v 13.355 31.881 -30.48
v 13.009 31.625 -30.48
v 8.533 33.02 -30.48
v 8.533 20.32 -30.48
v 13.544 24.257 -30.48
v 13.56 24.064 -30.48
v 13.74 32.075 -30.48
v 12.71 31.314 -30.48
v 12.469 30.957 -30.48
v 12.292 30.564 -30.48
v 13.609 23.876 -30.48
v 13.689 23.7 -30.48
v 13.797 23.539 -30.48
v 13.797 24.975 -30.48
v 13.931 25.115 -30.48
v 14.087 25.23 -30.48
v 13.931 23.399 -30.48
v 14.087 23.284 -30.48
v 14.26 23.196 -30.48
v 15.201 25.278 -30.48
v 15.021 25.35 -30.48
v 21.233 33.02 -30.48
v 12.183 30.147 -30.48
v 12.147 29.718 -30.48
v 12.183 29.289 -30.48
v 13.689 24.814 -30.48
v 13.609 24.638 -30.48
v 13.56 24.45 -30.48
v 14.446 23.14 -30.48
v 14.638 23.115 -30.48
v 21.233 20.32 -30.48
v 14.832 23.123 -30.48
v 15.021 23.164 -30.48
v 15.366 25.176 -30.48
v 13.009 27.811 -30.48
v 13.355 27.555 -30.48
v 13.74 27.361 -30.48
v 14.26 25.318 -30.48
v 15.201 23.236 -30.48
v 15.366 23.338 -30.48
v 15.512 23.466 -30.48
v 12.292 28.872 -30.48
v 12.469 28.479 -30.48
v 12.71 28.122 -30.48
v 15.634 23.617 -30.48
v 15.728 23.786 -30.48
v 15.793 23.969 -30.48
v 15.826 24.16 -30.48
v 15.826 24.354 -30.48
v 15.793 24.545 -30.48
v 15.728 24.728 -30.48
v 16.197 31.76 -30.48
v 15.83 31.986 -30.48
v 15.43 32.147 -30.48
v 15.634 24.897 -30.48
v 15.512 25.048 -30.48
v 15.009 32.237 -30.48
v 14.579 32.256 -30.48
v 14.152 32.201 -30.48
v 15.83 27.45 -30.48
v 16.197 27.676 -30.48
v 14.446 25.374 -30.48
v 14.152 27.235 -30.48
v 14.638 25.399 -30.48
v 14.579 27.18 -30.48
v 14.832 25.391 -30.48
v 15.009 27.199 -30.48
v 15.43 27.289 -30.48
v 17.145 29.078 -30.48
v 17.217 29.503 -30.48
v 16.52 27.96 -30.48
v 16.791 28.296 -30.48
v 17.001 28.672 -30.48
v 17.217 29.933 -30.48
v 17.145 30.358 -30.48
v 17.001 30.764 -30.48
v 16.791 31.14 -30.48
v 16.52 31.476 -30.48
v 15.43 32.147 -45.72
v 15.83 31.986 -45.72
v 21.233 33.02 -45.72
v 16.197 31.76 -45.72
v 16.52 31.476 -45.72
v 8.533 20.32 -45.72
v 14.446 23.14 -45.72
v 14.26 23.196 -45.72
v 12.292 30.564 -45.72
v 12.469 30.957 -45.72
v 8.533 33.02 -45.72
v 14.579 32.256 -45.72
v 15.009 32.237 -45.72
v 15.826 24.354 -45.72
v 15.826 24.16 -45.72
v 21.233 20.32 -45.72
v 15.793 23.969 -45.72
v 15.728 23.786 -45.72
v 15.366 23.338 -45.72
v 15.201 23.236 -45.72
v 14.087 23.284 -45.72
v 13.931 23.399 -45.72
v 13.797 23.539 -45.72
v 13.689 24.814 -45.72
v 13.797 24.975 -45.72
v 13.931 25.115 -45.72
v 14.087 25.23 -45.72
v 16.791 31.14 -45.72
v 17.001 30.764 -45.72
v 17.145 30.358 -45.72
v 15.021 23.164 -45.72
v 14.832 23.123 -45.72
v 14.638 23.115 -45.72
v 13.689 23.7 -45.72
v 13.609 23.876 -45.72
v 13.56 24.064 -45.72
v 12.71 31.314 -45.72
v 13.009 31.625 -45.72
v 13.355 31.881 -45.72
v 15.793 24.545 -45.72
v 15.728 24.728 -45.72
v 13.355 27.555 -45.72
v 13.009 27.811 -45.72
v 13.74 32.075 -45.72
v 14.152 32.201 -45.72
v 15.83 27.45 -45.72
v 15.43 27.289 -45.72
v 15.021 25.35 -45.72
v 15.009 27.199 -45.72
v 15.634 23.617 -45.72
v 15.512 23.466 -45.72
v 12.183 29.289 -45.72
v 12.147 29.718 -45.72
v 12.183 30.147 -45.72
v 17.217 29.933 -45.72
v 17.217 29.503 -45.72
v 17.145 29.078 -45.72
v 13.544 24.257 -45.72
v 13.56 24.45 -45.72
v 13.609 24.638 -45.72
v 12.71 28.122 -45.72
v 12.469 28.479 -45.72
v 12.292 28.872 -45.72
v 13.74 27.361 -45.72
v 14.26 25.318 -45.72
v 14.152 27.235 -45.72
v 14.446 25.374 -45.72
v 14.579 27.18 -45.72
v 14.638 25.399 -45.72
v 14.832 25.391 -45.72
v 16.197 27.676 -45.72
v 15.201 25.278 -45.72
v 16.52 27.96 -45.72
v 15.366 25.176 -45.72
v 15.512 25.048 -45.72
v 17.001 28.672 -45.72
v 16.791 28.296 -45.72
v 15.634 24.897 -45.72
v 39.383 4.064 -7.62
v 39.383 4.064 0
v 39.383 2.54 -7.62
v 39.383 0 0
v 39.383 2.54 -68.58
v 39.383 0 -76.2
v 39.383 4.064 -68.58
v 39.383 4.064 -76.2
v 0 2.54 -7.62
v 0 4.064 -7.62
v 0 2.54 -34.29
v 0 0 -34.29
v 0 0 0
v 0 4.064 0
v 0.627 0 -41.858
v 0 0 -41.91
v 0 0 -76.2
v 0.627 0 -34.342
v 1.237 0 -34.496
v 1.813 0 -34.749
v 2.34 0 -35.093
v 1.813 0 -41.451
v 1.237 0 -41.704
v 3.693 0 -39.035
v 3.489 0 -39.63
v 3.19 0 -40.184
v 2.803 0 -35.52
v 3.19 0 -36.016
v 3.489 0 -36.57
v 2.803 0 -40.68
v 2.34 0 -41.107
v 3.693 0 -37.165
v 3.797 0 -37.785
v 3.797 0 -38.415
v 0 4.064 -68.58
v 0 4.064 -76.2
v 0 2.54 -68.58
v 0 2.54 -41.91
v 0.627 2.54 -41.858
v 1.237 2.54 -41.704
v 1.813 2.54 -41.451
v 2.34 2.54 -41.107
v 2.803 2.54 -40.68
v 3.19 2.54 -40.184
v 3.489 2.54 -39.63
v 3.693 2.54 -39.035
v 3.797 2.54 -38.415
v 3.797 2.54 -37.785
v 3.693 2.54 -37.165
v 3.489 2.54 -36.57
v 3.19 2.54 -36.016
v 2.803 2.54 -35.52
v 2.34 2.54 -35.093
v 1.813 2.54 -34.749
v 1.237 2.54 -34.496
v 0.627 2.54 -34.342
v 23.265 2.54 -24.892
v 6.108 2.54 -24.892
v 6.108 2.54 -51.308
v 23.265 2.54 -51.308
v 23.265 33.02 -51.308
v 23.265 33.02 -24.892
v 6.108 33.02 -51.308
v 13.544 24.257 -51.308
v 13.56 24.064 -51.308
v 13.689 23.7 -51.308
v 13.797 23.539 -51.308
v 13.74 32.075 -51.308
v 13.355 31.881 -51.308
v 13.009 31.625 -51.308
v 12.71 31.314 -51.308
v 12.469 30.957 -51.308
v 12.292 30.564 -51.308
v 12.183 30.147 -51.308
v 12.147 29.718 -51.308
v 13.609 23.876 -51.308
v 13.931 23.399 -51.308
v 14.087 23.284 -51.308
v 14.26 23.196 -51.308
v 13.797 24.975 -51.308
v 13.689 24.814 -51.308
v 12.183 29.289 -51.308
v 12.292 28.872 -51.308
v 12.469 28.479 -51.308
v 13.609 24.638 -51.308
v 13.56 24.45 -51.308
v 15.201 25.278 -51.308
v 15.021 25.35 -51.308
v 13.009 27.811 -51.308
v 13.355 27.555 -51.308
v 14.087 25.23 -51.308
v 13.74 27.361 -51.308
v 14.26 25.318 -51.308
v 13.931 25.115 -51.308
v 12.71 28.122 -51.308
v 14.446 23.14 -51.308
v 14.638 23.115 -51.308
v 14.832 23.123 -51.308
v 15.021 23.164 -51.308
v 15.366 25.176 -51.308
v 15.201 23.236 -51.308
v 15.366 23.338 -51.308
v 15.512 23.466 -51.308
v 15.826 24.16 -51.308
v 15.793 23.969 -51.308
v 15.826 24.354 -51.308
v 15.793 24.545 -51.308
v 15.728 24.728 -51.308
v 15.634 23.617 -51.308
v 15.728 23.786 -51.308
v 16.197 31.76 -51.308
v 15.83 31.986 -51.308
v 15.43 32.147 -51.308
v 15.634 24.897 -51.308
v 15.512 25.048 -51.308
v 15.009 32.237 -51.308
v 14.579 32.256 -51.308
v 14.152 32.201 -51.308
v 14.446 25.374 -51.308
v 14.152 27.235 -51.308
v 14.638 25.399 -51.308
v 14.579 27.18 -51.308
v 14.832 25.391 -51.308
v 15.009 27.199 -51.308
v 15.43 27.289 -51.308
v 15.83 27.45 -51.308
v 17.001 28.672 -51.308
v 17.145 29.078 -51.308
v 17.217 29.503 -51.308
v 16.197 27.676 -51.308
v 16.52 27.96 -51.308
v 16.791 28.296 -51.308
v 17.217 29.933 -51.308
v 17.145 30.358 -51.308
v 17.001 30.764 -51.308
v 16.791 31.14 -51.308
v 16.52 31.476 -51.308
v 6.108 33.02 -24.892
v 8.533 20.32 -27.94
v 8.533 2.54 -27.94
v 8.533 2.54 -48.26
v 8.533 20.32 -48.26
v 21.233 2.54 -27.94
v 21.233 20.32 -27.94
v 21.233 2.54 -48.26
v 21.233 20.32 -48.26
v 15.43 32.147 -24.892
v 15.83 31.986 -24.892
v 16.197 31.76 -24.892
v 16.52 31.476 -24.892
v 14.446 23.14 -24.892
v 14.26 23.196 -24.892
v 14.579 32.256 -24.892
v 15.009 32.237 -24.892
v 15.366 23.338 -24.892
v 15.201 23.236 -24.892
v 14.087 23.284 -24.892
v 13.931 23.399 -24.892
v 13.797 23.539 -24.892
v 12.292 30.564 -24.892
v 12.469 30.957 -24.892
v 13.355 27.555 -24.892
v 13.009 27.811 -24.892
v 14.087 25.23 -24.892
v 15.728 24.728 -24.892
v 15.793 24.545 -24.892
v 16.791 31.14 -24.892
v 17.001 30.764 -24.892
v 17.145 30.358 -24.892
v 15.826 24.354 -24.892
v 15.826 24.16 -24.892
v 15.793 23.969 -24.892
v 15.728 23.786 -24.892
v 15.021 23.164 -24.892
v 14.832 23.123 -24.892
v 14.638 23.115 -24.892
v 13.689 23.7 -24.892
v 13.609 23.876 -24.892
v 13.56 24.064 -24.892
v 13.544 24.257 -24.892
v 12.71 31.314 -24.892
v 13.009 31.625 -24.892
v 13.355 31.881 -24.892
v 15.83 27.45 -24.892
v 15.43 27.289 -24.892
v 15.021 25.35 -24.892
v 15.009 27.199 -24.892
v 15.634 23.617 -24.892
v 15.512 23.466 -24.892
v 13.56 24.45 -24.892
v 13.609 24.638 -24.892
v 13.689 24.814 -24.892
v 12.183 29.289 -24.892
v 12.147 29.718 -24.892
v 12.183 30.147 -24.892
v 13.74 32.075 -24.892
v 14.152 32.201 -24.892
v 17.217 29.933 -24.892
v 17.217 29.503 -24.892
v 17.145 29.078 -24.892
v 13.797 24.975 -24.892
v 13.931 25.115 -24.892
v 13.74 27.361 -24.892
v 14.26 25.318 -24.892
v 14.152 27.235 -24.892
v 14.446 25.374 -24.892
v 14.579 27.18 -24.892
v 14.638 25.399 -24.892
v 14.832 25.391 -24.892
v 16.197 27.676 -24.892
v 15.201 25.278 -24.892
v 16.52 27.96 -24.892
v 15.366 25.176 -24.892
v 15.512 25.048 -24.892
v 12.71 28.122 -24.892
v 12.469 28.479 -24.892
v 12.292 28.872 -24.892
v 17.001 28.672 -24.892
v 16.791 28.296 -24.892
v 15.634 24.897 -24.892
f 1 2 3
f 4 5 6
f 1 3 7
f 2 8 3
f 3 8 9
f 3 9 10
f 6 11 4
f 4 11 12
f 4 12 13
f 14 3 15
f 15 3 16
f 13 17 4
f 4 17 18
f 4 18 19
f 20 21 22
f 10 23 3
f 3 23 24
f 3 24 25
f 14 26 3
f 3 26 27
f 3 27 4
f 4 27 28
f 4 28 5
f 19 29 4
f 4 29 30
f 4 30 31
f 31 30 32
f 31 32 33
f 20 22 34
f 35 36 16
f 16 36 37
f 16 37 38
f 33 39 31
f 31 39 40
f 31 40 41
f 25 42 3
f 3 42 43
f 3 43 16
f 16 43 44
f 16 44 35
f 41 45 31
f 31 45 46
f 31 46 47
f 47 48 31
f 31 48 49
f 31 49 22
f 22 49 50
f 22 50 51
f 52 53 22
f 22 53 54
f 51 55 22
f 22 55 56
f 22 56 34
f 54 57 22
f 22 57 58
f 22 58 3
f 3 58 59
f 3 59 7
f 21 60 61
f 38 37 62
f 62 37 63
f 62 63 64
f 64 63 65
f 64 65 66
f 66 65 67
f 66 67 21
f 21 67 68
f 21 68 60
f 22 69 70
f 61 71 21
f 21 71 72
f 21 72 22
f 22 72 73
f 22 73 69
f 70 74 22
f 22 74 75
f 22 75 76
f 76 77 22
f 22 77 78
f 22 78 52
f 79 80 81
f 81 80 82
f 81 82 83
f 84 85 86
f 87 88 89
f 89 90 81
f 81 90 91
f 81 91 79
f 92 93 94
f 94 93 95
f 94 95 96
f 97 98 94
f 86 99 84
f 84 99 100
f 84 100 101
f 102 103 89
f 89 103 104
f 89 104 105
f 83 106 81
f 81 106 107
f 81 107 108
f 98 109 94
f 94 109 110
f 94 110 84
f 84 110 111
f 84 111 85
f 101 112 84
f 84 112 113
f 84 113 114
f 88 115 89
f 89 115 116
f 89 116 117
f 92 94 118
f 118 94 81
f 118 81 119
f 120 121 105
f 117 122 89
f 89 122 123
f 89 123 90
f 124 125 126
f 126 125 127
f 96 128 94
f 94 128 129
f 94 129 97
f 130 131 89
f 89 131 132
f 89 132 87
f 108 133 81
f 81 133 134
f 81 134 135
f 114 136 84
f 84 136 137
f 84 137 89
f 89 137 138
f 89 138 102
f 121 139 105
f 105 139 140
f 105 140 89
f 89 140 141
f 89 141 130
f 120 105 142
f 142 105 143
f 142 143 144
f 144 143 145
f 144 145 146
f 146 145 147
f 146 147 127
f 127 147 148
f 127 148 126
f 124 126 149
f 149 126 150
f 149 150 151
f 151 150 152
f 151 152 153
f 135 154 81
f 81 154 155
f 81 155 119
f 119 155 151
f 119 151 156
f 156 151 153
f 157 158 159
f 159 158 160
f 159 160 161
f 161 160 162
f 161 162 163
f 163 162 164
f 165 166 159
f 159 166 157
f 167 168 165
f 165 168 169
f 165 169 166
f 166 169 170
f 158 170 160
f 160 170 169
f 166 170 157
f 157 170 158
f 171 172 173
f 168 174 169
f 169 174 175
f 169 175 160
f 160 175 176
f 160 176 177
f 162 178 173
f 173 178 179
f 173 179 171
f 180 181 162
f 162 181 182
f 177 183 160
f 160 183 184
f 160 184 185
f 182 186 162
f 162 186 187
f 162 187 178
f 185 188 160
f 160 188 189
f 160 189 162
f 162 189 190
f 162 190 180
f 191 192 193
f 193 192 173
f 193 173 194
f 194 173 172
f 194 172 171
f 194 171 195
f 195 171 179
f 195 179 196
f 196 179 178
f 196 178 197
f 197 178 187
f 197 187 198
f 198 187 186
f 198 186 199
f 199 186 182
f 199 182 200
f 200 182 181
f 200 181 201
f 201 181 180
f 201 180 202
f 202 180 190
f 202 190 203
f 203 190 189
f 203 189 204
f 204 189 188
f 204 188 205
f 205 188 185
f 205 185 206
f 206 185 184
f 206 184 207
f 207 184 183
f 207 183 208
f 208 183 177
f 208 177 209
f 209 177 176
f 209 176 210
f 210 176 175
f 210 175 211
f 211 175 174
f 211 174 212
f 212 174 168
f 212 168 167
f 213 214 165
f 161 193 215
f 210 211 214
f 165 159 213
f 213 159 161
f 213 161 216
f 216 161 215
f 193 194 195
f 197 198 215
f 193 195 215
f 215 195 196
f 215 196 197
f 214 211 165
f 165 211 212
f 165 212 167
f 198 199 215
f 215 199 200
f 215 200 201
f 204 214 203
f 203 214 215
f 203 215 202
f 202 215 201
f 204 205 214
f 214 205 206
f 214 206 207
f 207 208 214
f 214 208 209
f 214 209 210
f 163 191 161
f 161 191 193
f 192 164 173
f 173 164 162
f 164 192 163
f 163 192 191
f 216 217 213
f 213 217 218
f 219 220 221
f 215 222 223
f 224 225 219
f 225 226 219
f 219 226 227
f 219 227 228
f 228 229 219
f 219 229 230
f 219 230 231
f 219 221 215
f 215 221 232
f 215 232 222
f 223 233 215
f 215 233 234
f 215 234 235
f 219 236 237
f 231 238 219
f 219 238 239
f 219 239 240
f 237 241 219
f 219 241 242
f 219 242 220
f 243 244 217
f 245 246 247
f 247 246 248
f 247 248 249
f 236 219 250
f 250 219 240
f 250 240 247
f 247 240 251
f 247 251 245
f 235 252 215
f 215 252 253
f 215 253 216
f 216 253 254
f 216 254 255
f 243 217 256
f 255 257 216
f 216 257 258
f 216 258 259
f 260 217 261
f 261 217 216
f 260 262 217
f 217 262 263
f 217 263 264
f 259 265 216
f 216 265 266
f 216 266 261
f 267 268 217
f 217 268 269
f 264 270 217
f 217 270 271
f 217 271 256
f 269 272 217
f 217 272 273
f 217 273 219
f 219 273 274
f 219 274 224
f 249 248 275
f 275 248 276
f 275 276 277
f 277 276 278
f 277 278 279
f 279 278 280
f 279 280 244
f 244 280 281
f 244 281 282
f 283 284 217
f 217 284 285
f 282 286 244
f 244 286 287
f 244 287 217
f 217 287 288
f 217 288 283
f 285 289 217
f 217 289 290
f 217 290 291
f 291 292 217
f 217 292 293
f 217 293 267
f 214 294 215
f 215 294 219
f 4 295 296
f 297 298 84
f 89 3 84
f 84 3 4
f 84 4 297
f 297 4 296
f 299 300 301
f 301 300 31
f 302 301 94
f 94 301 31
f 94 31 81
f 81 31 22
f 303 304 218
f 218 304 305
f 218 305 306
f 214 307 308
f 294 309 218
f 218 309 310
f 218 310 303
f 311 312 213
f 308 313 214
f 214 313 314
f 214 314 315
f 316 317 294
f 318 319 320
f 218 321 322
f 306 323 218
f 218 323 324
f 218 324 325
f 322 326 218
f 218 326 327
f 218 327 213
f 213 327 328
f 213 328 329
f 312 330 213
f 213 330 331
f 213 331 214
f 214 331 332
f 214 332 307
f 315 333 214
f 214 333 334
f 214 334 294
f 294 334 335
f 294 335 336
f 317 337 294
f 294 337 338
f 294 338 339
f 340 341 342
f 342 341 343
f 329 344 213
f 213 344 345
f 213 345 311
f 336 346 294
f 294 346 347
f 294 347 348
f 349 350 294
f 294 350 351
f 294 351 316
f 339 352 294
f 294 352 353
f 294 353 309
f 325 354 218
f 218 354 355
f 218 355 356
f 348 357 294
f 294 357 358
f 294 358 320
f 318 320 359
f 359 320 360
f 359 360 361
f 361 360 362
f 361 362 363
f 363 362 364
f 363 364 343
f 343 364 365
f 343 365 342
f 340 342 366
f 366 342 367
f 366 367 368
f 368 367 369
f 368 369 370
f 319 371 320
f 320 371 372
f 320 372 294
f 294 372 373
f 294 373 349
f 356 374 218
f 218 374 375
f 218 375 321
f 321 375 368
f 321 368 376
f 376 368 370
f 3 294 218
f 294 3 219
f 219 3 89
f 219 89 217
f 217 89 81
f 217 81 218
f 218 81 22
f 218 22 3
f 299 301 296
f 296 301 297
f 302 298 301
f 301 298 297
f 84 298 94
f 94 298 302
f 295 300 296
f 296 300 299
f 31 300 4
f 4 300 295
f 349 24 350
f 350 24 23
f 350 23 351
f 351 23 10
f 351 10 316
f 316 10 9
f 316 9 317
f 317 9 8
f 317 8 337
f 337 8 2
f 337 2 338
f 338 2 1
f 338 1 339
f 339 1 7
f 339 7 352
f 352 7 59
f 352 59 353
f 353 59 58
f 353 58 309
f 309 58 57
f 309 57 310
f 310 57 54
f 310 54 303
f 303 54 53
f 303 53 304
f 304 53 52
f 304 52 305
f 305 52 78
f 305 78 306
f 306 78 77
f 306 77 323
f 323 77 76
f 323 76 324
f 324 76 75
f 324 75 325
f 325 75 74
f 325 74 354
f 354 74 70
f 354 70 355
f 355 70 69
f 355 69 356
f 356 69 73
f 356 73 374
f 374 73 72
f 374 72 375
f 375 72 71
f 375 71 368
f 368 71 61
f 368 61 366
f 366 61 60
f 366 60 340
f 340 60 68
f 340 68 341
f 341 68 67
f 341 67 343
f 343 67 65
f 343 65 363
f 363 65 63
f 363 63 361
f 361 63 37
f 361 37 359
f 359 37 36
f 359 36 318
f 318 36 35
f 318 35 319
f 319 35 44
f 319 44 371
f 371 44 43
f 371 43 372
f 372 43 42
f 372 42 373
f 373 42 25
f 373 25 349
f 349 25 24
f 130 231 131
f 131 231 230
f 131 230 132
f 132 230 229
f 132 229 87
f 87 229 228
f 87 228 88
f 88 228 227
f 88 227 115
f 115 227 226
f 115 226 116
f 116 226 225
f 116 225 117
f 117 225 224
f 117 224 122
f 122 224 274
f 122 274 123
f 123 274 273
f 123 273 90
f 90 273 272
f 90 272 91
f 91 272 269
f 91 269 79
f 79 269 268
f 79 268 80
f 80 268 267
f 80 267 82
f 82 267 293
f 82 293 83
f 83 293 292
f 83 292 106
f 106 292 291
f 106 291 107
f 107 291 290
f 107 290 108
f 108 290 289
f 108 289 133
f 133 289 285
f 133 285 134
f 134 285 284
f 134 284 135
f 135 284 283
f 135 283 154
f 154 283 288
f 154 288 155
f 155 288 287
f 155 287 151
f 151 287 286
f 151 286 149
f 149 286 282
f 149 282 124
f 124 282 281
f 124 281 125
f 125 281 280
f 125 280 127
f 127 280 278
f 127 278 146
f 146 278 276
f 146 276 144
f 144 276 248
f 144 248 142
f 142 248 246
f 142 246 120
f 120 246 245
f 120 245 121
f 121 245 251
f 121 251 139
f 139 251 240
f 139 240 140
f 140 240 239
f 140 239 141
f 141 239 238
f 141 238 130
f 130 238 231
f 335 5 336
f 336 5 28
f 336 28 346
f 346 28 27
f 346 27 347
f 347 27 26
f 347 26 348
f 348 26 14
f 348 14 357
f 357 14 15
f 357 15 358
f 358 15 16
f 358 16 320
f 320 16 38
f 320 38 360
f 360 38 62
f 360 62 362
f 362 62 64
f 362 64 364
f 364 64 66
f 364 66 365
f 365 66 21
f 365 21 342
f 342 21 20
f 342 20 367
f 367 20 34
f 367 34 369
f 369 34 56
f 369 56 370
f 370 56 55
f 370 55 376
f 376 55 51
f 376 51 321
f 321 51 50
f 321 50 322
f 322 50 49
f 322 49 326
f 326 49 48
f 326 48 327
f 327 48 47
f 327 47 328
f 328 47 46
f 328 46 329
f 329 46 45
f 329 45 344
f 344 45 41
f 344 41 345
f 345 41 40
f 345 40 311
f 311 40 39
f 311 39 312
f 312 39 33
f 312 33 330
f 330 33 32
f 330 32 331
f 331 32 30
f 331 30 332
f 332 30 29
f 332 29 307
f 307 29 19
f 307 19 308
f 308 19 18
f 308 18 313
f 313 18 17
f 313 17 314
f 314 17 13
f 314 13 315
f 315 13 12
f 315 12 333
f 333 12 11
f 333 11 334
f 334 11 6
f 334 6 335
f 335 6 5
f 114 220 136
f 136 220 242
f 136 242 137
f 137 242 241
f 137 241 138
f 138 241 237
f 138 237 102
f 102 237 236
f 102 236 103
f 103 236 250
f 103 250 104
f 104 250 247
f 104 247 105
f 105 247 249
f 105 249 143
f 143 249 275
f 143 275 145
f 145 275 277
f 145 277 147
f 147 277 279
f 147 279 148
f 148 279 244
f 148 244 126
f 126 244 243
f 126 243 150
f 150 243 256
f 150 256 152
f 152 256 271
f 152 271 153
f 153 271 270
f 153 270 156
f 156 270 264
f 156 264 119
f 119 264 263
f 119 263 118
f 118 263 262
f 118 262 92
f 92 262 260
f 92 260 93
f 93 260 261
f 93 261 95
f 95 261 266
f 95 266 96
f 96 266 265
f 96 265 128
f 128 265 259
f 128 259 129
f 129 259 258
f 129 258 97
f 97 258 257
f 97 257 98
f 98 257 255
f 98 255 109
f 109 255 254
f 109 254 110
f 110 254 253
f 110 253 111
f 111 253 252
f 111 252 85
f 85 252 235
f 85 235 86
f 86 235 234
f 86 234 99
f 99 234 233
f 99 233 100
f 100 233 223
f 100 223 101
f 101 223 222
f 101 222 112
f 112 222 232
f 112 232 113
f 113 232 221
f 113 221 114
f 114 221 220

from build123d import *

# Parameters (mm, degrees)
SKETCH2_W             = 39.3827
SKETCH2_H             = 7.62
BOSS_EXTRUDE2_DEPTH   = 4.064
BOSS_EXTRUDE2_2_DEPTH = 4.064
BOSS_EXTRUDE3_DEPTH   = 2.54
BOSS_EXTRUDE4_DEPTH   = 33.02
SKETCH4_W             = 12.7
SKETCH4_H             = 2.54
CUT_EXTRUDE2_DEPTH    = 17.78
CUT_EXTRUDE3_REACH    = 74.621
SKETCH5_R             = 2.54
SKETCH5_R_2           = 1.143


with BuildPart() as part:
    # Sketch2 → Boss-Extrude2 (new body)
    with BuildSketch(Plane(origin=(0, 0, 0), x_dir=(1, 0, 0), z_dir=(0, 1, 0))):
        with Locations((19.69135, 3.81)):
            Rectangle(SKETCH2_W, SKETCH2_H)
    extrude(amount=BOSS_EXTRUDE2_DEPTH)



with BuildPart() as body_2:
    # Sketch2 → Boss-Extrude2 2 (new body)
    with BuildSketch(Plane(origin=(0, 0, 0), x_dir=(1, 0, 0), z_dir=(0, 1, 0))):
        with Locations((19.69135, 72.39)):
            Rectangle(SKETCH2_W, SKETCH2_H)
    extrude(amount=BOSS_EXTRUDE2_2_DEPTH)


with BuildPart() as part_1:
    add(part.part)

    add(body_2.part)  # Boss-Extrude3 merges body 2
    # Sketch2<3> → Boss-Extrude3 (add)
    with BuildSketch(Plane(origin=(0, 0, 0), x_dir=(1, 0, 0), z_dir=(0, 1, 0))):
        with BuildLine():
            Line((0, 34.29), (0, 7.62))
            Line((0, 7.62), (39.3827, 7.62))
            Line((39.3827, 7.62), (39.3827, 68.58))
            Line((39.3827, 68.58), (0, 68.58))
            Line((0, 68.58), (0, 41.91))
            ThreePointArc((0, 41.91), (3.81, 38.1), (0, 34.29))
        make_face()
    extrude(amount=BOSS_EXTRUDE3_DEPTH)

    # Sketch2<8> → Boss-Extrude4 (add)
    with BuildSketch(Plane(origin=(0, 0, 0), x_dir=(1, 0, 0), z_dir=(0, 1, 0))):
        Polygon((6.107856951, 51.308), (6.107856951, 38.1), (6.107856951, 24.892), (23.265414456, 24.892), (23.265414456, 51.308), align=None)
        Polygon((8.533414456, 30.48), (8.533414456, 38.1), (8.533414456, 45.72), (21.233414456, 45.72), (21.233414456, 30.48), align=None, mode=Mode.SUBTRACT)
    extrude(amount=BOSS_EXTRUDE4_DEPTH)

    # Sketch4 → Cut-Extrude2 (cut)
    with BuildSketch(Plane(origin=(0, 2.54, 0), x_dir=(1, 0, 0), z_dir=(0, 1, 0))):
        with Locations((14.883414456, 46.99)):
            Rectangle(SKETCH4_W, SKETCH4_H)
        with Locations((14.883414456, 29.21)):
            Rectangle(SKETCH4_W, SKETCH4_H)
    extrude(amount=CUT_EXTRUDE2_DEPTH, mode=Mode.SUBTRACT)

    # Cut-Extrude3: up to this face of the body (flat: up to its plane)
    cut_extrude3_end = Plane(part_1.part.faces().sort_by_distance((14.686635703, 17.78, -24.892))[0])
    # Sketch5 → Cut-Extrude3 (cut, up to the picked face)
    with BuildSketch(Plane(origin=(0, 0, -51.308), x_dir=(-1, 0, 0), z_dir=(0, 0, -1)), mode=Mode.PRIVATE) as cut_extrude3_sk1:
        with Locations((-14.686635703, 29.718)):
            Circle(SKETCH5_R)
    cut_extrude3_tool1 = split(extrude(cut_extrude3_sk1.sketch, amount=-CUT_EXTRUDE3_REACH, mode=Mode.PRIVATE), bisect_by=cut_extrude3_end, keep=Keep.BOTH, mode=Mode.PRIVATE)
    # Sketch5 → Cut-Extrude3 (cut, up to the picked face)
    with BuildSketch(Plane(origin=(0, 0, -51.308), x_dir=(-1, 0, 0), z_dir=(0, 0, -1)), mode=Mode.PRIVATE) as cut_extrude3_sk2:
        with Locations((-14.686635703, 24.257)):
            Circle(SKETCH5_R_2)
    cut_extrude3_tool2 = split(extrude(cut_extrude3_sk2.sketch, amount=-CUT_EXTRUDE3_REACH, mode=Mode.PRIVATE), bisect_by=cut_extrude3_end, keep=Keep.BOTH, mode=Mode.PRIVATE)
    add(cut_extrude3_tool1.solids().sort_by(Axis((14.686636, 29.718, -51.308), (0, 0, 1)))[0], mode=Mode.SUBTRACT)
    add(cut_extrude3_tool2.solids().sort_by(Axis((14.686636, 24.257, -51.308), (0, 0, 1)))[0], mode=Mode.SUBTRACT)


solid = part_1.part
